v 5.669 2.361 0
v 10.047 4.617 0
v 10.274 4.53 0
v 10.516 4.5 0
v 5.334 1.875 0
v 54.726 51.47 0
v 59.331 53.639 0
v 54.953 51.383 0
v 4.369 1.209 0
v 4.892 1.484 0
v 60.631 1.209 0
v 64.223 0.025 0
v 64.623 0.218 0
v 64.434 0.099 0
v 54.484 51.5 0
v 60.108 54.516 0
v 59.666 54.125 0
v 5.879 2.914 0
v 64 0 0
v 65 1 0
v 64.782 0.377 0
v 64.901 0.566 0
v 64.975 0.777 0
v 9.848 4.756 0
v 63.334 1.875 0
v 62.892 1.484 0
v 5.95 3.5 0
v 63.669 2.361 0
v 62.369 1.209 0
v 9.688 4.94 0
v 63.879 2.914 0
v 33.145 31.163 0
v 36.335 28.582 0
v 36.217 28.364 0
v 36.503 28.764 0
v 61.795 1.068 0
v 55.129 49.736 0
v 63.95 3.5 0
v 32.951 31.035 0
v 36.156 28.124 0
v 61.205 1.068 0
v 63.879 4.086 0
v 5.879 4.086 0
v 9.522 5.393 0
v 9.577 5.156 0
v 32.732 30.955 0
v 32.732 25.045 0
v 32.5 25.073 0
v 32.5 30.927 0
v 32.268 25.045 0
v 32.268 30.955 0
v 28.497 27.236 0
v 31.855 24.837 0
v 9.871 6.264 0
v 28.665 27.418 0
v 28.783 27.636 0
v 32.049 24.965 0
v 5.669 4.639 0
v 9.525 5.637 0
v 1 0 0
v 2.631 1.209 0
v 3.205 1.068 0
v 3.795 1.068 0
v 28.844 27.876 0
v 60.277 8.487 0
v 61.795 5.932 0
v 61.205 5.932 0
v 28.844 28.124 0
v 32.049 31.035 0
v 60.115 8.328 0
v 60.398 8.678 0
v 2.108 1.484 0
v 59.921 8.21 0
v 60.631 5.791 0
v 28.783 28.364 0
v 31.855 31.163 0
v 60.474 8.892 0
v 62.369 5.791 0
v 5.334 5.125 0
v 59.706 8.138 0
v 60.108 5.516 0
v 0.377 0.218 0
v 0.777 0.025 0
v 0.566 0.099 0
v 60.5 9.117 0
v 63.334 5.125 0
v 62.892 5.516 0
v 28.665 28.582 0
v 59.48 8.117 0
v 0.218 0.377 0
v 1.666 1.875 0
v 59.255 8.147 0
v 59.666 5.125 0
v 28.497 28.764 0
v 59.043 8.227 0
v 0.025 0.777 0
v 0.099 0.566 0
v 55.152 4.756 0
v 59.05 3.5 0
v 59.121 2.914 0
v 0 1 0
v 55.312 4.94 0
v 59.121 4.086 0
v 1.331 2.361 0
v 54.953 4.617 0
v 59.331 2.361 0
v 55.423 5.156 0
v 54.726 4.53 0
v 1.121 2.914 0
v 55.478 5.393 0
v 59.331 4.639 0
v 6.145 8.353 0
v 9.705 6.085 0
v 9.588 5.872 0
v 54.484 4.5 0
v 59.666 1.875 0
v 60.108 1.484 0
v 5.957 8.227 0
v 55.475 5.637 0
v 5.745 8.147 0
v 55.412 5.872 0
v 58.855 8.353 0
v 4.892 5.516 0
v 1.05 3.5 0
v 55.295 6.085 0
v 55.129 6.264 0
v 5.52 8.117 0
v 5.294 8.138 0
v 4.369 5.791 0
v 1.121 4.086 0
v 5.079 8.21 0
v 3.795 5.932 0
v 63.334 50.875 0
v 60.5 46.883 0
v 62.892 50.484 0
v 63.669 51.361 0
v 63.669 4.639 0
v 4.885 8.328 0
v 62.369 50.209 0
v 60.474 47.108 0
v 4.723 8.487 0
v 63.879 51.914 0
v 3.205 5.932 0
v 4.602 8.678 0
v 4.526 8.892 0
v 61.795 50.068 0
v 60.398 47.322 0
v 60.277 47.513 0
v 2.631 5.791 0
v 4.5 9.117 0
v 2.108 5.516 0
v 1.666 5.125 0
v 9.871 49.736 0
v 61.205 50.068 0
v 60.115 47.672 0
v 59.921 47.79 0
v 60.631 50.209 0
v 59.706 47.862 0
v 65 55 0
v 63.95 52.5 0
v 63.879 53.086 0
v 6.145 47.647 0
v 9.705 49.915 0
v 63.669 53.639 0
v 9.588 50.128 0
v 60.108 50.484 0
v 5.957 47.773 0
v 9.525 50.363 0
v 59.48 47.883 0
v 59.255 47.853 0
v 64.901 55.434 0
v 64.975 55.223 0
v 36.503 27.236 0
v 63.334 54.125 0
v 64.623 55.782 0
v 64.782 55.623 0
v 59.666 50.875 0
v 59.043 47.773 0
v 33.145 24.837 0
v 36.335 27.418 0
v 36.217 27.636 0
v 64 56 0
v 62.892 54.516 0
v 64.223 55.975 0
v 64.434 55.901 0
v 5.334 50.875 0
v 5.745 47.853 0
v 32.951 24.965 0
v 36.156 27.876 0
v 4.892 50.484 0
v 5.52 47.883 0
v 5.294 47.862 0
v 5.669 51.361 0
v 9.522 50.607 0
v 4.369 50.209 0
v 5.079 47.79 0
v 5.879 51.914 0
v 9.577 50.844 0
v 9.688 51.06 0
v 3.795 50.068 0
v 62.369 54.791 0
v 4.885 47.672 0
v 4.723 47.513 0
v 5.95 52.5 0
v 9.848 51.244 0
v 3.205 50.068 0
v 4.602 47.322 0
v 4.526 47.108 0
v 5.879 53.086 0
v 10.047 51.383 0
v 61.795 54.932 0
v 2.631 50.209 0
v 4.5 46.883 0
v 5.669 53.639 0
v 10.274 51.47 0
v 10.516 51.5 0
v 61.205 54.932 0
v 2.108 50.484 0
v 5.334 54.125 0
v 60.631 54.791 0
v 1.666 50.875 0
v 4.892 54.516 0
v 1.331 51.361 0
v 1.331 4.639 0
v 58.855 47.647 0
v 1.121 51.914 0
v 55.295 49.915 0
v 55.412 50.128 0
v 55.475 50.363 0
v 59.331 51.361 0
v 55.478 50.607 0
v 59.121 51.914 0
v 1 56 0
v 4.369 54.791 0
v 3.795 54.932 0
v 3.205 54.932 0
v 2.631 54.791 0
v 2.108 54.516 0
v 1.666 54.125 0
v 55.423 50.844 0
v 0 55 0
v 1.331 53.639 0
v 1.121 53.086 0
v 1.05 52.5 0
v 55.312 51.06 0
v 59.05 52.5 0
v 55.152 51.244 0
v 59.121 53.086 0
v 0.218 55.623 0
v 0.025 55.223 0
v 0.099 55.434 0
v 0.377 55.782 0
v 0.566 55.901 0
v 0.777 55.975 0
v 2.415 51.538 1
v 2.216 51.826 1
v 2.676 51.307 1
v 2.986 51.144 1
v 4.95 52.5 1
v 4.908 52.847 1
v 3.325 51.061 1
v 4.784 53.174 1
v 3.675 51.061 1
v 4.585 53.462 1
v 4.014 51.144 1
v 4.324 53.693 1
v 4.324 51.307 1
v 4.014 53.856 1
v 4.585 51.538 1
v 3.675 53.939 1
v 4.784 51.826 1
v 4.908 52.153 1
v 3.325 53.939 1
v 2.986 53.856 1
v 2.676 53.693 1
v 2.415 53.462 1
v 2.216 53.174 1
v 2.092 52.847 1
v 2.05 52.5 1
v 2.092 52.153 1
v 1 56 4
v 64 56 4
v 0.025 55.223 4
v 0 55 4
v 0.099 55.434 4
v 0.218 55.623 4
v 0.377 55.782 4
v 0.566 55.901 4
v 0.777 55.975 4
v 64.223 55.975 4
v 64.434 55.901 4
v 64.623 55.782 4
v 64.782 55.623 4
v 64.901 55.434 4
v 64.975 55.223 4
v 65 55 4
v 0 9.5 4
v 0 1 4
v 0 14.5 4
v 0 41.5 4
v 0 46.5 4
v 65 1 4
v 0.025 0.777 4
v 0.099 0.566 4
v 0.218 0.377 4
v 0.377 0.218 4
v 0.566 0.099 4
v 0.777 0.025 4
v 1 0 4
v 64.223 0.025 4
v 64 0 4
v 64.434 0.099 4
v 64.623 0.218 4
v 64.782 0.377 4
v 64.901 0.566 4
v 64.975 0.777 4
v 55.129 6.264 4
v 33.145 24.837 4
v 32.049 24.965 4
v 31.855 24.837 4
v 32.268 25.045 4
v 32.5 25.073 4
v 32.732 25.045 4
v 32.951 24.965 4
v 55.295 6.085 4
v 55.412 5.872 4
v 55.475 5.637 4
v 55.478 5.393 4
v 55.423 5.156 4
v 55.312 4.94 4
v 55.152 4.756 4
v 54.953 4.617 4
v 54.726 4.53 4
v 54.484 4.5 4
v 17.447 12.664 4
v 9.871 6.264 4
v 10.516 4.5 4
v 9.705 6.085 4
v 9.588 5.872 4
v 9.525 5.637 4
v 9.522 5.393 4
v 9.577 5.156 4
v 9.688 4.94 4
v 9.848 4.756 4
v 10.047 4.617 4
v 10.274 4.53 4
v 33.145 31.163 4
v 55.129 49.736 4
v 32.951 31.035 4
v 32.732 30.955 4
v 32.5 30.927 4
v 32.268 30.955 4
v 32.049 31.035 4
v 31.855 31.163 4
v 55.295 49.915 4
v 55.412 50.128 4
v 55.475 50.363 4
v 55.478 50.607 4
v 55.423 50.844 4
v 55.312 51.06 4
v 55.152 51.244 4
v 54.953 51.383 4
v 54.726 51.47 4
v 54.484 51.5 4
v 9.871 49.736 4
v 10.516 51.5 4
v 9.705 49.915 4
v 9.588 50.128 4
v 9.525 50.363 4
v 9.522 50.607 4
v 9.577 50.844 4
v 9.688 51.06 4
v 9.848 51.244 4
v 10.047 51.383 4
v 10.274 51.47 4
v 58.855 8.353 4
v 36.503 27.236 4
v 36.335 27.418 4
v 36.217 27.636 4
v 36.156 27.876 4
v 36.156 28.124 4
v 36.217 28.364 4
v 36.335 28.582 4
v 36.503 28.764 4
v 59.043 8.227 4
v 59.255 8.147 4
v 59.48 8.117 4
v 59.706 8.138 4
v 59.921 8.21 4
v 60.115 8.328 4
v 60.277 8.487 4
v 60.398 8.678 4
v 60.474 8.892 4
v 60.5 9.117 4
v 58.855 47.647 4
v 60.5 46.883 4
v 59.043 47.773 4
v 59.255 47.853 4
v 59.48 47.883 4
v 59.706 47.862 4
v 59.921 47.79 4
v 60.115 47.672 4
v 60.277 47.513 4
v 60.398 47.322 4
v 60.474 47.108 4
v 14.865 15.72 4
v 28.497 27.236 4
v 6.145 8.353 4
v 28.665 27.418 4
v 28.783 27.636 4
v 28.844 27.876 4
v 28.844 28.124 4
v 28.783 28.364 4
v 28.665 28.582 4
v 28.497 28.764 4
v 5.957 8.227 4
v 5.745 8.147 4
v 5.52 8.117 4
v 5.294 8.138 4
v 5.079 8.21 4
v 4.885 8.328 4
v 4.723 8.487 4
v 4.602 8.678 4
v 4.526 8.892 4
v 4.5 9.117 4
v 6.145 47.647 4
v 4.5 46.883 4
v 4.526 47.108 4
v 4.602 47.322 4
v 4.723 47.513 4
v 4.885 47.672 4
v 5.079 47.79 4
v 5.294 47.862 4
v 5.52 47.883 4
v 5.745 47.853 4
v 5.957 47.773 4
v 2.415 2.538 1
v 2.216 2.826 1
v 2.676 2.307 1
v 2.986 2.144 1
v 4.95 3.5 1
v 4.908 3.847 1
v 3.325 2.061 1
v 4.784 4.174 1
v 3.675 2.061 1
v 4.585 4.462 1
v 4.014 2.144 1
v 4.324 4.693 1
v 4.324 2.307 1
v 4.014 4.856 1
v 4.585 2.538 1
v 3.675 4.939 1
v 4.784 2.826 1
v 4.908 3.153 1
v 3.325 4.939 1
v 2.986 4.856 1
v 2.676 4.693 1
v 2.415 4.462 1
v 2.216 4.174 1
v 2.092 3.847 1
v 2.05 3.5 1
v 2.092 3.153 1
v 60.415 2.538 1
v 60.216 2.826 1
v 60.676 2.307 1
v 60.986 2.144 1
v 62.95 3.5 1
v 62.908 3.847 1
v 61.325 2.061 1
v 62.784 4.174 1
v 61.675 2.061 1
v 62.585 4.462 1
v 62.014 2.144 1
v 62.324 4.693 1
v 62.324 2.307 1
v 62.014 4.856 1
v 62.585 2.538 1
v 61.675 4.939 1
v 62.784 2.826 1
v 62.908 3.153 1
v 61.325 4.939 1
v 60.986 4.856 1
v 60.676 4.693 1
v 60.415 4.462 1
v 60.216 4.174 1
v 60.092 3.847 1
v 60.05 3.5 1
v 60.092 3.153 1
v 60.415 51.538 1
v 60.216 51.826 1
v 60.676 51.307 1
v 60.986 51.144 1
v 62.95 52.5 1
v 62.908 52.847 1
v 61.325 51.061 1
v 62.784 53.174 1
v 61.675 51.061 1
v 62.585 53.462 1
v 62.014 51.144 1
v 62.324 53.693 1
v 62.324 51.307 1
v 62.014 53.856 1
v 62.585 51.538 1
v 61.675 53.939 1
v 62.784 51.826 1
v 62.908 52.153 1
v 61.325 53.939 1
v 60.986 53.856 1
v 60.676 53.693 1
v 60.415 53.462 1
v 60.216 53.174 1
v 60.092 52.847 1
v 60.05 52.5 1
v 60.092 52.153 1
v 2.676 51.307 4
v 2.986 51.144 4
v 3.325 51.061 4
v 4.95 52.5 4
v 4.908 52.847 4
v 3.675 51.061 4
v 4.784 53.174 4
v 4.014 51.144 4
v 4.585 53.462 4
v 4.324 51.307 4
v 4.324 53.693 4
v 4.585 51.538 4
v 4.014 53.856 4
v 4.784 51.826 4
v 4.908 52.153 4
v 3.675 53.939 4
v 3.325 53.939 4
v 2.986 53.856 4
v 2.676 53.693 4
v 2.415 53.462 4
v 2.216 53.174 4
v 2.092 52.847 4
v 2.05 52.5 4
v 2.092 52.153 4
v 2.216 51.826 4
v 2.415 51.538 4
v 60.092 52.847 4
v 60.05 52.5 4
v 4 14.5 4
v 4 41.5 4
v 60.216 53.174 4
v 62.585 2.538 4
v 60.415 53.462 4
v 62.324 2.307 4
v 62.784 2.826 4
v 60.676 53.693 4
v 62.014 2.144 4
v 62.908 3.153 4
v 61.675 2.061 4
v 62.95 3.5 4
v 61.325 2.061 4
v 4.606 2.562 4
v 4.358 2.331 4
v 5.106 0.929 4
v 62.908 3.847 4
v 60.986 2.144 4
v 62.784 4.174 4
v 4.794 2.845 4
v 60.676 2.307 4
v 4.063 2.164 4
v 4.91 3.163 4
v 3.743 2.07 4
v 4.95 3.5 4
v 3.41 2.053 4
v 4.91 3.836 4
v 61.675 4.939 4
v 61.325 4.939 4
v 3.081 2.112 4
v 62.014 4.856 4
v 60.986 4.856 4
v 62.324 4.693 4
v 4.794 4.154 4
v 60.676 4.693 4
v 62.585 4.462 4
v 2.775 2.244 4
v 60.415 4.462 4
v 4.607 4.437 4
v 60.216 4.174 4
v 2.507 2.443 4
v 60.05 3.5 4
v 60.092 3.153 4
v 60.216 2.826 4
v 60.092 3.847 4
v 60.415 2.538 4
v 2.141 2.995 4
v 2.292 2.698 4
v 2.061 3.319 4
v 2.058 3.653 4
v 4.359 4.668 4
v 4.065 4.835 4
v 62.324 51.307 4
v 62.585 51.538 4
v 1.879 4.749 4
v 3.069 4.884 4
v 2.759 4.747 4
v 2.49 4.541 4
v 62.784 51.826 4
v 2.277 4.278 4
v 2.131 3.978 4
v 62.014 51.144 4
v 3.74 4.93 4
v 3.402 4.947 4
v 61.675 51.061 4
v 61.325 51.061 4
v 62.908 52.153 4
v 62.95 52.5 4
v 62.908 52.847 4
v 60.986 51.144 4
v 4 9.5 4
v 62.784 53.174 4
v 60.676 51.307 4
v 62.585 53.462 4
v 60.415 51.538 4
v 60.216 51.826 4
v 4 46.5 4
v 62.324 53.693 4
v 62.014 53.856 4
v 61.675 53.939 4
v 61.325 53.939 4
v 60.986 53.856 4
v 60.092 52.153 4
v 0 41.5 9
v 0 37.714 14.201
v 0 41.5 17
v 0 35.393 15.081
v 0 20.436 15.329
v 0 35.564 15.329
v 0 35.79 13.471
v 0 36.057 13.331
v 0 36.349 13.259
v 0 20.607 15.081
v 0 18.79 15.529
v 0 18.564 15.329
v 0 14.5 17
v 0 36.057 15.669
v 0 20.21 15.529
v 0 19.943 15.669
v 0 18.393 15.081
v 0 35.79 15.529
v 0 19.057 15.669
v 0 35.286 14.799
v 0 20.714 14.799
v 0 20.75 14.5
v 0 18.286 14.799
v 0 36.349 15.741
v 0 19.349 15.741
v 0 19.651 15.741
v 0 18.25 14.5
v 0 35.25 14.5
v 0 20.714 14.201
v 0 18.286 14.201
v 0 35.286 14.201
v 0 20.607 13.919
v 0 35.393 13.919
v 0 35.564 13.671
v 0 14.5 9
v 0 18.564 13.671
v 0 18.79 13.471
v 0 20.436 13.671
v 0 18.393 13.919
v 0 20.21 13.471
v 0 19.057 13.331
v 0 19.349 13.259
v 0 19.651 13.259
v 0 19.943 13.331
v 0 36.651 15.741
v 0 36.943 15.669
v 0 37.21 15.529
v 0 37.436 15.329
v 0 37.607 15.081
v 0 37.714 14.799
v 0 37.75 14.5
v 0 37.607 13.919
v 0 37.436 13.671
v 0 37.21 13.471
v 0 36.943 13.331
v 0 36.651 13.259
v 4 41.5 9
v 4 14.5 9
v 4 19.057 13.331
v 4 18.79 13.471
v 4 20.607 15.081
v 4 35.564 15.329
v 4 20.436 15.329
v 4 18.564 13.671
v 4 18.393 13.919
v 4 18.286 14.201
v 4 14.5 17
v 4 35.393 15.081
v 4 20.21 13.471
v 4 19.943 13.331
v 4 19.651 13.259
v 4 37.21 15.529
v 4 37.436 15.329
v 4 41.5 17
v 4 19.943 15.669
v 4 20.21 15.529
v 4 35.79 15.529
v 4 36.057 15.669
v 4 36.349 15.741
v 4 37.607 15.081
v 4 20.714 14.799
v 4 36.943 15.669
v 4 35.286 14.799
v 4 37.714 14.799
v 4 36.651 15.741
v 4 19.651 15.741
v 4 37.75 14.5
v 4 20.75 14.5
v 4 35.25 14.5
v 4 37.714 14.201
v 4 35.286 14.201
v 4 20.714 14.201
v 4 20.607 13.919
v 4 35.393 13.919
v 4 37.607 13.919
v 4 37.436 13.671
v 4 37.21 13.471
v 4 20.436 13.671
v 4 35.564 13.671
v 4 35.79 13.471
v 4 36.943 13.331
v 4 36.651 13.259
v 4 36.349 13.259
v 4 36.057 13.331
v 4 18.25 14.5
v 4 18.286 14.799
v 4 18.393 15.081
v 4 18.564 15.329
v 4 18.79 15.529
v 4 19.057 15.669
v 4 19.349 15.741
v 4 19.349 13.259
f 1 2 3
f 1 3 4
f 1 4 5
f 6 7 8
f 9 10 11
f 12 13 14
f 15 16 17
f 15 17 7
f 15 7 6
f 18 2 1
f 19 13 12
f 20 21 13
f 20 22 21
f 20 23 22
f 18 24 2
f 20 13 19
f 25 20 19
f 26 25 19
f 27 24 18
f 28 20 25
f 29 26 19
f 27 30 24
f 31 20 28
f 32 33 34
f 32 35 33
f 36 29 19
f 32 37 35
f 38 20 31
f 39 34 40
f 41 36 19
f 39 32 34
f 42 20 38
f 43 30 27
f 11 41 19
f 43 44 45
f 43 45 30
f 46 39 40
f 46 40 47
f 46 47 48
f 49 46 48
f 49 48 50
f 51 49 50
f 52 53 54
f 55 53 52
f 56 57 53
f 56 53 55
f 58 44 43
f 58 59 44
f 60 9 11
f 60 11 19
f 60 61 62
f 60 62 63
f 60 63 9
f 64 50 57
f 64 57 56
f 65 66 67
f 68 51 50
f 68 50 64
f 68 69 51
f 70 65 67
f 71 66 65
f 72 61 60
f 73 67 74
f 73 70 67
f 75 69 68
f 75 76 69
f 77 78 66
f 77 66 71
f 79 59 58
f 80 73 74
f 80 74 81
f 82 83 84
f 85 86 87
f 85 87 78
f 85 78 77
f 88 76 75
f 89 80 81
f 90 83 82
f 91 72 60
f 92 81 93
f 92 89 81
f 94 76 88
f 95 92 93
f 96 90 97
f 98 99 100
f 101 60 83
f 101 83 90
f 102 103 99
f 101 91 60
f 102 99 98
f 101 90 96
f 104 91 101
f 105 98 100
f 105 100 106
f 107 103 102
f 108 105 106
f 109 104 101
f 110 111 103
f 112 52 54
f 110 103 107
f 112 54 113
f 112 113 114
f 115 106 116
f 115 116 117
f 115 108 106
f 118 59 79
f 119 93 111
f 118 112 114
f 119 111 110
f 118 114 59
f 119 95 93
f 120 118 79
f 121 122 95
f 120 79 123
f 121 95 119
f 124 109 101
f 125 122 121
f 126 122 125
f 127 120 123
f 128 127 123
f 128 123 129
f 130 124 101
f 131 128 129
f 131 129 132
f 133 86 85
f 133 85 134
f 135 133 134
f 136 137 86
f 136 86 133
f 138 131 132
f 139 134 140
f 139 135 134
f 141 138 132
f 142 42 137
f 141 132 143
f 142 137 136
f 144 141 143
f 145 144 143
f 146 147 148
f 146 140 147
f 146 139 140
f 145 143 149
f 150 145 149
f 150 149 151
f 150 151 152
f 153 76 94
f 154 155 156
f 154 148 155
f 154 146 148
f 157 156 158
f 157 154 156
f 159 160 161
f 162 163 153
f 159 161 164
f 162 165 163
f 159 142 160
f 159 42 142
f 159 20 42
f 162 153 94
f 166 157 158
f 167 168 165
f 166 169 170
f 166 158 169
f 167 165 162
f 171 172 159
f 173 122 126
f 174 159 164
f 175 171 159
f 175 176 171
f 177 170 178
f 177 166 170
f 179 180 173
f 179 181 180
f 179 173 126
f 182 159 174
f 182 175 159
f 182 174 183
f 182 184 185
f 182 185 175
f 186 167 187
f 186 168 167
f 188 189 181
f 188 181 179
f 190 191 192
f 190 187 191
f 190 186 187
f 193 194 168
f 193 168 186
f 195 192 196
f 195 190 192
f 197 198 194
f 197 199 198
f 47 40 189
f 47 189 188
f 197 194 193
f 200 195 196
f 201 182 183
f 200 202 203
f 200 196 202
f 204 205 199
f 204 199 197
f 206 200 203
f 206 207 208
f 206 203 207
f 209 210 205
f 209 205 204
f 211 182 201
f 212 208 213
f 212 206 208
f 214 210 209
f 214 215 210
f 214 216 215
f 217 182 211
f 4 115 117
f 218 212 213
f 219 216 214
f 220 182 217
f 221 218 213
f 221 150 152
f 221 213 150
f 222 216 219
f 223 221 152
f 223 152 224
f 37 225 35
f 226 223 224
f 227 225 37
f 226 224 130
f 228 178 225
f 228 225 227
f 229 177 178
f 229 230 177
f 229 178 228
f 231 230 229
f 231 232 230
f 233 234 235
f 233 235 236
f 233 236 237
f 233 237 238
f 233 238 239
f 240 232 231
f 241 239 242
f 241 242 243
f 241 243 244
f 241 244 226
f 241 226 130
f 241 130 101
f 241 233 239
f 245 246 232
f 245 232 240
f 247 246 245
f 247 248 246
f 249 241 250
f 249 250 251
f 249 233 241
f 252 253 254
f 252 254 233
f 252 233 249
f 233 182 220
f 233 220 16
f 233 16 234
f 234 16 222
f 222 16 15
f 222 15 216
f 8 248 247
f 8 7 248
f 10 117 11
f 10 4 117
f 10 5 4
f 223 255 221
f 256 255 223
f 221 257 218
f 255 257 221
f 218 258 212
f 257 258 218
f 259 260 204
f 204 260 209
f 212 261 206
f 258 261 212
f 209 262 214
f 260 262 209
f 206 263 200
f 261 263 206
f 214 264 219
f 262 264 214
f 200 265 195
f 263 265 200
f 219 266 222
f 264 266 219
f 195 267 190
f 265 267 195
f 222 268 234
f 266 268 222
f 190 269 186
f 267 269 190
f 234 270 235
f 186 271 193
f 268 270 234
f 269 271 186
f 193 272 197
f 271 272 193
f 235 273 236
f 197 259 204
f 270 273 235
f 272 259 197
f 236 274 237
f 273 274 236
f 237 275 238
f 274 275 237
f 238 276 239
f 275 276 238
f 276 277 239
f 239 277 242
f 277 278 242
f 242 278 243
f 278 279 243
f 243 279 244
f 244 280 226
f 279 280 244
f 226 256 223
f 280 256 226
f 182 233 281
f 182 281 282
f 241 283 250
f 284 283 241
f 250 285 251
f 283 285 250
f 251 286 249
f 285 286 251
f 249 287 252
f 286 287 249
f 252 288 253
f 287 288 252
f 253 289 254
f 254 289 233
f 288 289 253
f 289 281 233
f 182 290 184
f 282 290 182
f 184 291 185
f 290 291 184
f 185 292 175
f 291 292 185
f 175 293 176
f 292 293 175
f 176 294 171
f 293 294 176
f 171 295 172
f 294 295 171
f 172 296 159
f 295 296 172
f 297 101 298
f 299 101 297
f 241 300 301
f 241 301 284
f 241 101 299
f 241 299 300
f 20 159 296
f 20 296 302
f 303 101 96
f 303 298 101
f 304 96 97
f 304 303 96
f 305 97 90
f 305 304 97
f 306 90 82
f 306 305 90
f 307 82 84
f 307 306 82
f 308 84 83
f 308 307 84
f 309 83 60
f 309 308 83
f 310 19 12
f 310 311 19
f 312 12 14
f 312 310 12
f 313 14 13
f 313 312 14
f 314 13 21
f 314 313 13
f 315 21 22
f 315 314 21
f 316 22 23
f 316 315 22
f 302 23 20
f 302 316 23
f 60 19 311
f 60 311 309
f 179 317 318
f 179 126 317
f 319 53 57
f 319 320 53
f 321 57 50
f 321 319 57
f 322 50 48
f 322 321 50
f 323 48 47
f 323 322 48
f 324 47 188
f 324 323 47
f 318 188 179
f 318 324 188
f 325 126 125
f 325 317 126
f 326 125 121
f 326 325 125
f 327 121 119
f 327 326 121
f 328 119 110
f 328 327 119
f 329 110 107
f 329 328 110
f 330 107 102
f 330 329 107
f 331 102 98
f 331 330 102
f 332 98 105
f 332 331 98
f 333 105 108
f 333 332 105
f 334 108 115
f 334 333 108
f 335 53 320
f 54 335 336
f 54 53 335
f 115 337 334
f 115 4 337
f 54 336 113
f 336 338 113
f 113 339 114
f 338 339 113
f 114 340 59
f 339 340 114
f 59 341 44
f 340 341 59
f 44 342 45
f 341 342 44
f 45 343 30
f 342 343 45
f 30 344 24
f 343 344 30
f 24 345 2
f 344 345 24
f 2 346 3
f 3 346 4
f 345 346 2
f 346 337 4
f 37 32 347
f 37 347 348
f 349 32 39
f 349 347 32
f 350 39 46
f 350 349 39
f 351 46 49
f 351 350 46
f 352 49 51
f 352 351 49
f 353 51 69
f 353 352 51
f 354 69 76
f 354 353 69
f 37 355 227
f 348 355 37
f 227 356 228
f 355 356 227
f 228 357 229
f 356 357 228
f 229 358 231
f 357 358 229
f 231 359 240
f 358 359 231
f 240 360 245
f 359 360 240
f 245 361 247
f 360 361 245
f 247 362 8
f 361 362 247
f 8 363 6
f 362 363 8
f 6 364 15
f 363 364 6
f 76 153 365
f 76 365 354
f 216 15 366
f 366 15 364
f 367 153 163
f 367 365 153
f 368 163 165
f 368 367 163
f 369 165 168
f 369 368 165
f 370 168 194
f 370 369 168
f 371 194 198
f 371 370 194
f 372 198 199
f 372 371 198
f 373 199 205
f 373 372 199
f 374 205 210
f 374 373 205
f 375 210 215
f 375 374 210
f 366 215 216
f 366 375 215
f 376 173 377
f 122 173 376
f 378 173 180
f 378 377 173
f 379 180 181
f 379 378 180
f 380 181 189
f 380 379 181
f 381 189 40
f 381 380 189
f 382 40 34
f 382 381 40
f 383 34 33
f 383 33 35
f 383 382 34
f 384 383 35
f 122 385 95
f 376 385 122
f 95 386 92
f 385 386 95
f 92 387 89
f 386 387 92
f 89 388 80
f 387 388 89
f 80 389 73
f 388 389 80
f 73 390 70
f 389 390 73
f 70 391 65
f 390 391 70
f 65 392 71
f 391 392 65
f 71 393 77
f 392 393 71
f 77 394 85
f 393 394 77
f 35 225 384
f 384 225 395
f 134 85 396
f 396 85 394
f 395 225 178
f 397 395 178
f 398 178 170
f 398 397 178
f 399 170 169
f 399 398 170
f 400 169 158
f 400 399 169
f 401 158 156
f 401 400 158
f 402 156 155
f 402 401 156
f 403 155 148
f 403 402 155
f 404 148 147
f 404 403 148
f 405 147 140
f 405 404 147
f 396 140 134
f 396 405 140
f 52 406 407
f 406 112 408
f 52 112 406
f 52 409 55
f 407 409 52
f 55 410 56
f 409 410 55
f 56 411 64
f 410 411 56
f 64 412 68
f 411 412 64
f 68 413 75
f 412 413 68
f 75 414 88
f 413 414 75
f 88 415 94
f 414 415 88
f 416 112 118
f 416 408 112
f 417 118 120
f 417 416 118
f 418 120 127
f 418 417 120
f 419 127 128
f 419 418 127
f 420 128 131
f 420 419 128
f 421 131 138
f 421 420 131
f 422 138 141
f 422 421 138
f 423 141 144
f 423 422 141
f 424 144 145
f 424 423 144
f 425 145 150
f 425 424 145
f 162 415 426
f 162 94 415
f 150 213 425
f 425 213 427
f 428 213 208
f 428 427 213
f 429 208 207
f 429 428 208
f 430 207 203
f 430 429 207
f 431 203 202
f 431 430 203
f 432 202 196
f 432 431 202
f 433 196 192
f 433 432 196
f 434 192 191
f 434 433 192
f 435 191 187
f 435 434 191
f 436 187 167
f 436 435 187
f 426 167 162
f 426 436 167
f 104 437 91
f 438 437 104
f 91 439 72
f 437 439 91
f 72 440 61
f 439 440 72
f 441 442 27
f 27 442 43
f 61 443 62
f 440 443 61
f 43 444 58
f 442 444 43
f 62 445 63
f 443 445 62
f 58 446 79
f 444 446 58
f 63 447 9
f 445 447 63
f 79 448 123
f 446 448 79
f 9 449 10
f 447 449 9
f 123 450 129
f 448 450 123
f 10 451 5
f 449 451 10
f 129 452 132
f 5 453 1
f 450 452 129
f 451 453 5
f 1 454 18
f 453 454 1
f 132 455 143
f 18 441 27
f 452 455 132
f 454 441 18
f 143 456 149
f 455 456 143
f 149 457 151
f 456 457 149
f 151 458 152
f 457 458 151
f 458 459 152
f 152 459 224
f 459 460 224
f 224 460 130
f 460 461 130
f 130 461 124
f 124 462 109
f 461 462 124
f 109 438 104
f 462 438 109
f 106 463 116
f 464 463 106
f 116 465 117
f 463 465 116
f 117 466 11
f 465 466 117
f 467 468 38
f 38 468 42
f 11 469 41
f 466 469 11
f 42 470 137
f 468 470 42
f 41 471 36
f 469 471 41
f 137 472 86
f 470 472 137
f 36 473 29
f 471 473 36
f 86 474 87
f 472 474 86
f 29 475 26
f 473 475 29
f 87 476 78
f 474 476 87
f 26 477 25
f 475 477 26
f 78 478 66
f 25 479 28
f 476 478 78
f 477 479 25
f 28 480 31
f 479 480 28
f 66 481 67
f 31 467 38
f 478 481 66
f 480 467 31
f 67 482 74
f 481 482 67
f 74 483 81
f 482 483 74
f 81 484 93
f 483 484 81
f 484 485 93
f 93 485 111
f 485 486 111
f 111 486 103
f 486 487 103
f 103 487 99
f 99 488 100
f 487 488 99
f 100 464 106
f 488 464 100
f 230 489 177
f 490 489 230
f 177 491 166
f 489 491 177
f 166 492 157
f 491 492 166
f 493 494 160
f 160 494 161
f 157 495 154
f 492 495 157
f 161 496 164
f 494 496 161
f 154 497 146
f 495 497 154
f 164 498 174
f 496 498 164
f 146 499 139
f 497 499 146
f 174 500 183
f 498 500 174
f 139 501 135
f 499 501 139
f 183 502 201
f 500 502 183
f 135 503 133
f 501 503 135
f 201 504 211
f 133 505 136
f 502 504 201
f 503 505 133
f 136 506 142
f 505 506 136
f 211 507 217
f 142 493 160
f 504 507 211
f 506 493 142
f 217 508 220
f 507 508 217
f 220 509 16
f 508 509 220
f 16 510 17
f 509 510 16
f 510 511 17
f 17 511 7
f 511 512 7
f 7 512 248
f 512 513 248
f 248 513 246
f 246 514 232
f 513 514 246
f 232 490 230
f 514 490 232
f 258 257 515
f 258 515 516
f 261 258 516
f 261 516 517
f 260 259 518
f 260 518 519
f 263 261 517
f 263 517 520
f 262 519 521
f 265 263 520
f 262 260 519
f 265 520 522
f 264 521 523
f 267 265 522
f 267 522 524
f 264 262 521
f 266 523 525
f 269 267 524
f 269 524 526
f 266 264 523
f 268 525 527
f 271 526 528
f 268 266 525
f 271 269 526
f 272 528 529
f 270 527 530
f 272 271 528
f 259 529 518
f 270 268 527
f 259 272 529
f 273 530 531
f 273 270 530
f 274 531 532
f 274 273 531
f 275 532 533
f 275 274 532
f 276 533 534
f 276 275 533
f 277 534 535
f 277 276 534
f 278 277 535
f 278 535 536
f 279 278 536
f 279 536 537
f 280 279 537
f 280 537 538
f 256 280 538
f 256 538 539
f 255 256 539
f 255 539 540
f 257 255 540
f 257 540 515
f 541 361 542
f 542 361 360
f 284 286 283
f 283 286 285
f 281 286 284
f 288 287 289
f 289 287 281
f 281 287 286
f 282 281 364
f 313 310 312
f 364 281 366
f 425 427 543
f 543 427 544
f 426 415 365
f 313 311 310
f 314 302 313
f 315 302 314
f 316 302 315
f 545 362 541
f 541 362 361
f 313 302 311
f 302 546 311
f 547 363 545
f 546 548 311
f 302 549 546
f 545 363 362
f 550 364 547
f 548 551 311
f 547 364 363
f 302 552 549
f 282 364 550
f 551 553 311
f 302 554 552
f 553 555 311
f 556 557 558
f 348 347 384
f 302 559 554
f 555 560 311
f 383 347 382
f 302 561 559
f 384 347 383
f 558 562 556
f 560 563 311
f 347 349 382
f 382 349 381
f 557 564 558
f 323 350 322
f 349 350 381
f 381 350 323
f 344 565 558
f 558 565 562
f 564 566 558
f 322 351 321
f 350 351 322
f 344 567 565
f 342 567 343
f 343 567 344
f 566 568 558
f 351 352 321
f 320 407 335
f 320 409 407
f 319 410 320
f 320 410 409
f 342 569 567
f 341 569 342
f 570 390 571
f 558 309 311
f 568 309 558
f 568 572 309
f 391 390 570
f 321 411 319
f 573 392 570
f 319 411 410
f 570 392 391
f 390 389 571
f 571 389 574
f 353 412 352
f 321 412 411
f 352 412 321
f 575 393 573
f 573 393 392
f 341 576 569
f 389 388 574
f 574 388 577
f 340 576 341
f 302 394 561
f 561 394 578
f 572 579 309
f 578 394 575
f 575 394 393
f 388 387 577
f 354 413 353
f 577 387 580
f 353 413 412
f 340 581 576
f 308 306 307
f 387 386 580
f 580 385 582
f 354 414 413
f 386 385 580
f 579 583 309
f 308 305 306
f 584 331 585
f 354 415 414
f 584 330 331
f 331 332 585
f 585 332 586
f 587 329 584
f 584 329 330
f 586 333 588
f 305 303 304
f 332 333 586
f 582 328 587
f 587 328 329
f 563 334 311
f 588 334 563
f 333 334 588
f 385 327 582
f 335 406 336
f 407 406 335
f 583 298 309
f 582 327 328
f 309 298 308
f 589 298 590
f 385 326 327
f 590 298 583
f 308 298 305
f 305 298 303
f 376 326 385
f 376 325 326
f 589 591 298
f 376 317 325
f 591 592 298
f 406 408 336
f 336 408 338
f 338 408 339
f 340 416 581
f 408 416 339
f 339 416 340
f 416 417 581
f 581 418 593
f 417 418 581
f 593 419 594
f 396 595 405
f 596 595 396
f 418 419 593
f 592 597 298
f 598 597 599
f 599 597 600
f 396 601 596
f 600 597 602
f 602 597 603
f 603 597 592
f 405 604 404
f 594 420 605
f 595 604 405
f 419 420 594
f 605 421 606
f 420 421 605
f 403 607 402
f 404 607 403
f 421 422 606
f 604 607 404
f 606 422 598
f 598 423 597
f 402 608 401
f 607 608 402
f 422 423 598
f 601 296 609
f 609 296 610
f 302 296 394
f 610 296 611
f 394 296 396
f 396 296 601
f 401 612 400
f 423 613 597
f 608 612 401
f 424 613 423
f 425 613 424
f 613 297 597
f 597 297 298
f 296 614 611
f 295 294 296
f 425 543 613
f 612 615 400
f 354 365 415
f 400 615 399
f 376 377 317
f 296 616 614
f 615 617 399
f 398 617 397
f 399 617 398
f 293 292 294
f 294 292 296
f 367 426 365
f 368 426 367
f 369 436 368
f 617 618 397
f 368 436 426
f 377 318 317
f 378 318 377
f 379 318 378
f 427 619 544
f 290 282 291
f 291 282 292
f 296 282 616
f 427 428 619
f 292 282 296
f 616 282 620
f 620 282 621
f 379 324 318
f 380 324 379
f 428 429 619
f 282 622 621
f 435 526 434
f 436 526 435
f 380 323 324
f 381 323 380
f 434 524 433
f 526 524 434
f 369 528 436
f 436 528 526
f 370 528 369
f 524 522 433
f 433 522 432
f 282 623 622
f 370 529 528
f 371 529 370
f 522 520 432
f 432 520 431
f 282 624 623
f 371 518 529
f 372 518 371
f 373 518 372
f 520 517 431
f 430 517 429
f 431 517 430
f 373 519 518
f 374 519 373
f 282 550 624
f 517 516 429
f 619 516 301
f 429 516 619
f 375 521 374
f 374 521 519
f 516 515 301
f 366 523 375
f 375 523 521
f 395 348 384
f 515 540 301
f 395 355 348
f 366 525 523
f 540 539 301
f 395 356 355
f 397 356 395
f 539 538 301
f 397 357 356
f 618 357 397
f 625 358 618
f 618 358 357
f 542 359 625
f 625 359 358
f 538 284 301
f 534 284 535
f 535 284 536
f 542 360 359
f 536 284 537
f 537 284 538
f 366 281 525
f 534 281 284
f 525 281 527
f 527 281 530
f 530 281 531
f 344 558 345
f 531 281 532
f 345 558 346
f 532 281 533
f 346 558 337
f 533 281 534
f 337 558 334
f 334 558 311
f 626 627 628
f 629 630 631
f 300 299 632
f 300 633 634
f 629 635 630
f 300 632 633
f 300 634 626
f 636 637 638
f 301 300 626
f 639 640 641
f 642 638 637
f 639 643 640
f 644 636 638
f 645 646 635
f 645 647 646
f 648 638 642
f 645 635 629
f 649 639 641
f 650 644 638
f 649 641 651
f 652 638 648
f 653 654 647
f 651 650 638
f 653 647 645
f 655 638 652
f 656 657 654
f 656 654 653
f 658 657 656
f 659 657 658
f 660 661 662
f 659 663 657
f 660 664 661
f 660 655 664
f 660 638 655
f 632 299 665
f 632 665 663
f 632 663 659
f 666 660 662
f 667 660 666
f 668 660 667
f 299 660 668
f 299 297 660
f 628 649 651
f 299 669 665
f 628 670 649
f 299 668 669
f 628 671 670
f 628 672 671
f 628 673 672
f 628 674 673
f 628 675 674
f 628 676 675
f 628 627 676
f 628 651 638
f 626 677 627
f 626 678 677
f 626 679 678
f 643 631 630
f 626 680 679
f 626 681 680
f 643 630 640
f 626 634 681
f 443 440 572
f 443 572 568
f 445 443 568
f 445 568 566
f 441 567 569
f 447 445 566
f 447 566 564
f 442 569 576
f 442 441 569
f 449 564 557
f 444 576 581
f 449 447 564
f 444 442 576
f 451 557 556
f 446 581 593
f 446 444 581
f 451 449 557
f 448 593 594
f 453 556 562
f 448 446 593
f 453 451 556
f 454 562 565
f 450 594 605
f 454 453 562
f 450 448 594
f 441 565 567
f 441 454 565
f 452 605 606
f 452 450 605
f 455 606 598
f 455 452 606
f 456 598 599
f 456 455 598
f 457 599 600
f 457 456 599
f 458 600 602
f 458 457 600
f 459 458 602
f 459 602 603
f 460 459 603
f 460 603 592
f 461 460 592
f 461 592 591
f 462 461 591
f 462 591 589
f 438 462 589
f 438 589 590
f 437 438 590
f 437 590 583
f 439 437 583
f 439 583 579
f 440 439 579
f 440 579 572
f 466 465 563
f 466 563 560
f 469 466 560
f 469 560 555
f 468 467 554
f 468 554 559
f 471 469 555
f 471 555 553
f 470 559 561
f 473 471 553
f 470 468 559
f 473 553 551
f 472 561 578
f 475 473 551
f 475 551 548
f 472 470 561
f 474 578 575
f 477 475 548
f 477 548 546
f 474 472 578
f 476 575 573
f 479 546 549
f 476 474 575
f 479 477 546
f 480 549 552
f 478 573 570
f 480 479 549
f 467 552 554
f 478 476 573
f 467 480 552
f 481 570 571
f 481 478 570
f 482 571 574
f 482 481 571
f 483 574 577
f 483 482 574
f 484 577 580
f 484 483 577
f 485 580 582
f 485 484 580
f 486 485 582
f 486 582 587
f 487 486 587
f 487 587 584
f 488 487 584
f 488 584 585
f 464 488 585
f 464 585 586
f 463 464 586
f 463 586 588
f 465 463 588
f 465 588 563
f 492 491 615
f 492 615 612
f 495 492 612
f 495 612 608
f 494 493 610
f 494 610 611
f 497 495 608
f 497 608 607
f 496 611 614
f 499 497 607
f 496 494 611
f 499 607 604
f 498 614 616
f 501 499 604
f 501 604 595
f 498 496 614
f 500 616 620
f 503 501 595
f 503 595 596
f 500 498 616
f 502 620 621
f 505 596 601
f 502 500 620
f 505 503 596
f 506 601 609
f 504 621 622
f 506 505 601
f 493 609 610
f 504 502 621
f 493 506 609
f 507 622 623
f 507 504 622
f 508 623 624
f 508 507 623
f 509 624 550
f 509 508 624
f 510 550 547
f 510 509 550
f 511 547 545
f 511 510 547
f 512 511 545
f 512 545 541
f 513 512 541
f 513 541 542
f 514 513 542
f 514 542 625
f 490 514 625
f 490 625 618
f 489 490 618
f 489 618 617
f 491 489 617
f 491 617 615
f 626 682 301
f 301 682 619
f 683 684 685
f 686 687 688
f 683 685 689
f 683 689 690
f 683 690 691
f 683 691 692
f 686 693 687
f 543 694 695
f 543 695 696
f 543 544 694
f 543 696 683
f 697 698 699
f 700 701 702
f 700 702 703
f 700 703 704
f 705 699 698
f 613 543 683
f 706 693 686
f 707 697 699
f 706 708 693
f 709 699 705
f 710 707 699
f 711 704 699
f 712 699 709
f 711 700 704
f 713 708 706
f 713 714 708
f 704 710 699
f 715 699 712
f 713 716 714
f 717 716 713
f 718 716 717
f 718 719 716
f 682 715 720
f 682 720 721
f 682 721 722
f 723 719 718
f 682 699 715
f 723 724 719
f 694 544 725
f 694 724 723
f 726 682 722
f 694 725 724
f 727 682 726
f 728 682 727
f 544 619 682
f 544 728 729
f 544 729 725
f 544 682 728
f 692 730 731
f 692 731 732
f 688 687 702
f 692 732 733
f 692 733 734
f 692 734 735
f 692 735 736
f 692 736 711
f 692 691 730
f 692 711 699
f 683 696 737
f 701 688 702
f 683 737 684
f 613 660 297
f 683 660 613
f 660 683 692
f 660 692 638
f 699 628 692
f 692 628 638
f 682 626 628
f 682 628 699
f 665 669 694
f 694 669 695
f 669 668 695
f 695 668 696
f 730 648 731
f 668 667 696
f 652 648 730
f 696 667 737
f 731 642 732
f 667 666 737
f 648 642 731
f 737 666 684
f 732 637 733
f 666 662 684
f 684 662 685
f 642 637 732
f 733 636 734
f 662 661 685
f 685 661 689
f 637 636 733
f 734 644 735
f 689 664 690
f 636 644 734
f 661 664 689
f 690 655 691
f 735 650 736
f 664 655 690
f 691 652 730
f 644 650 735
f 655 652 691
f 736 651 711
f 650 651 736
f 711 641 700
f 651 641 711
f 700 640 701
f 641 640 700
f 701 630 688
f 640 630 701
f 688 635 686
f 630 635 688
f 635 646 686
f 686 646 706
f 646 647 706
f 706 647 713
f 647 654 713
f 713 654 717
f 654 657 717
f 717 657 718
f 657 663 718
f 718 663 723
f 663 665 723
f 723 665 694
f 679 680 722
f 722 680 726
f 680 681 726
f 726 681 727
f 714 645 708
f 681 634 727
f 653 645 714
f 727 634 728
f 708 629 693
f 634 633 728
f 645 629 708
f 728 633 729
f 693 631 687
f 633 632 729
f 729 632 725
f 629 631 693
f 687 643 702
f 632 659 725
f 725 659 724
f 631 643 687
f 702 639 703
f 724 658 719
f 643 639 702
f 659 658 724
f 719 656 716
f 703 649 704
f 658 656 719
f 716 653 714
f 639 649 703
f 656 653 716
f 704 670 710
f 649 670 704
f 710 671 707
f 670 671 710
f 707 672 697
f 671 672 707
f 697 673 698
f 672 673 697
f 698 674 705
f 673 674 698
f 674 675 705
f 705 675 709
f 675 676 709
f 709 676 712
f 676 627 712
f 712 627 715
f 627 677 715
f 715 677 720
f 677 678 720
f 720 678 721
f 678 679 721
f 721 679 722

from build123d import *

# Parameters (mm, degrees)
SKETCH_W        = 65
SKETCH_H        = 56
SKETCH_R        = 1.45
PAD_DEPTH       = 4
SKETCH002_R     = 1.25
POCKET_DEPTH    = 5
SKETCH003_W     = 4
SKETCH003_H     = 27
PAD001_DEPTH    = 13
SKETCH004_R     = 1.25
POCKET001_DEPTH = 65.001
CHAMFER_SIZE    = 5
FILLET_R        = 1
CHAMFER001_SIZE = 1


with BuildPart() as part:
    # Sketch → Pad (new body)
    with BuildSketch(Plane.XY):
        with Locations((32.5, 28)):
            Rectangle(SKETCH_W, SKETCH_H)
        with Locations((3.5, 52.5)):
            Circle(SKETCH_R, mode=Mode.SUBTRACT)
        with Locations((61.5, 52.5)):
            Circle(SKETCH_R, mode=Mode.SUBTRACT)
        with Locations((3.5, 3.5)):
            Circle(SKETCH_R, mode=Mode.SUBTRACT)
        with Locations((61.5, 3.5)):
            Circle(SKETCH_R, mode=Mode.SUBTRACT)
        Polygon((7.782759, 51.5), (57.217241, 51.5), (32.5, 30.618193), align=None, mode=Mode.SUBTRACT)
        Polygon((60.5, 49.036979), (60.5, 6.963021), (35.599086, 28), align=None, mode=Mode.SUBTRACT)
        Polygon((57.217241, 4.5), (7.782759, 4.5), (32.5, 25.381807), align=None, mode=Mode.SUBTRACT)
        Polygon((4.5, 6.963021), (4.5, 49.036979), (29.400914, 28), align=None, mode=Mode.SUBTRACT)
    extrude(amount=PAD_DEPTH)

    # Sketch002 → Pocket (cut)
    with BuildSketch(Plane(origin=(-1.55844, 1.844684, 0), x_dir=(-0.763886, -0.645352, 0), z_dir=(-0.645352, 0.763886, 0))):
        with Locations((-21.5, 5.25)):
            Circle(SKETCH002_R)
        with Locations((-4.5, 5.25)):
            Circle(SKETCH002_R)
    extrude(amount=-POCKET_DEPTH, mode=Mode.SUBTRACT)

    # Sketch003 (on Face22 of Pocket) → Pad001 (join)
    with BuildSketch(Plane.XY.offset(4)):
        with Locations((2, 28)):
            Rectangle(SKETCH003_W, SKETCH003_H)
    extrude(amount=PAD001_DEPTH)

    # Sketch004 (on Face7 of Pad001) → Pocket001 (cut, through all)
    with BuildSketch(Plane(origin=(0, 0, 0), x_dir=(0, -1, 0), z_dir=(-1, 0, 0))):
        with Locations((-36.5, 14.5)):
            Circle(SKETCH004_R)
        with Locations((-19.5, 14.5)):
            Circle(SKETCH004_R)
    extrude(amount=-POCKET001_DEPTH, mode=Mode.SUBTRACT)

    # Chamfer
    chamfer_edges = [part.edges().sort_by_distance(p)[0] for p in [
        (2, 41.5, 4),
        (2, 14.5, 4),
    ]]
    chamfer(chamfer_edges, length=CHAMFER_SIZE)

    # Fillet
    fillet_edges = [part.edges().sort_by_distance(p)[0] for p in [
        (7.782759, 51.5, 2),
        (35.599086, 28, 2),
        (60.5, 6.963021, 2),
        (4.5, 6.963021, 2),
        (29.400914, 28, 2),
        (7.782759, 4.5, 2),
        (57.217241, 4.5, 2),
        (57.217241, 51.5, 2),
        (4.5, 49.036979, 2),
        (4.95, 52.5, 2),
        (32.5, 25.381807, 2),
        (32.5, 30.618193, 2),
        (60.5, 49.036979, 2),
        (0, 56, 2),
        (65, 56, 2),
        (65, 0, 2),
        (0, 0, 2),
    ]]
    fillet(fillet_edges, radius=FILLET_R)

    # Chamfer001
    chamfer001_edges = [part.edges().sort_by_distance(p)[0] for p in [
        (2.05, 52.5, 0),
        (2.05, 3.5, 0),
        (60.05, 3.5, 0),
        (60.05, 52.5, 0),
    ]]
    chamfer(chamfer001_edges, length=CHAMFER001_SIZE)


solid = part.part
